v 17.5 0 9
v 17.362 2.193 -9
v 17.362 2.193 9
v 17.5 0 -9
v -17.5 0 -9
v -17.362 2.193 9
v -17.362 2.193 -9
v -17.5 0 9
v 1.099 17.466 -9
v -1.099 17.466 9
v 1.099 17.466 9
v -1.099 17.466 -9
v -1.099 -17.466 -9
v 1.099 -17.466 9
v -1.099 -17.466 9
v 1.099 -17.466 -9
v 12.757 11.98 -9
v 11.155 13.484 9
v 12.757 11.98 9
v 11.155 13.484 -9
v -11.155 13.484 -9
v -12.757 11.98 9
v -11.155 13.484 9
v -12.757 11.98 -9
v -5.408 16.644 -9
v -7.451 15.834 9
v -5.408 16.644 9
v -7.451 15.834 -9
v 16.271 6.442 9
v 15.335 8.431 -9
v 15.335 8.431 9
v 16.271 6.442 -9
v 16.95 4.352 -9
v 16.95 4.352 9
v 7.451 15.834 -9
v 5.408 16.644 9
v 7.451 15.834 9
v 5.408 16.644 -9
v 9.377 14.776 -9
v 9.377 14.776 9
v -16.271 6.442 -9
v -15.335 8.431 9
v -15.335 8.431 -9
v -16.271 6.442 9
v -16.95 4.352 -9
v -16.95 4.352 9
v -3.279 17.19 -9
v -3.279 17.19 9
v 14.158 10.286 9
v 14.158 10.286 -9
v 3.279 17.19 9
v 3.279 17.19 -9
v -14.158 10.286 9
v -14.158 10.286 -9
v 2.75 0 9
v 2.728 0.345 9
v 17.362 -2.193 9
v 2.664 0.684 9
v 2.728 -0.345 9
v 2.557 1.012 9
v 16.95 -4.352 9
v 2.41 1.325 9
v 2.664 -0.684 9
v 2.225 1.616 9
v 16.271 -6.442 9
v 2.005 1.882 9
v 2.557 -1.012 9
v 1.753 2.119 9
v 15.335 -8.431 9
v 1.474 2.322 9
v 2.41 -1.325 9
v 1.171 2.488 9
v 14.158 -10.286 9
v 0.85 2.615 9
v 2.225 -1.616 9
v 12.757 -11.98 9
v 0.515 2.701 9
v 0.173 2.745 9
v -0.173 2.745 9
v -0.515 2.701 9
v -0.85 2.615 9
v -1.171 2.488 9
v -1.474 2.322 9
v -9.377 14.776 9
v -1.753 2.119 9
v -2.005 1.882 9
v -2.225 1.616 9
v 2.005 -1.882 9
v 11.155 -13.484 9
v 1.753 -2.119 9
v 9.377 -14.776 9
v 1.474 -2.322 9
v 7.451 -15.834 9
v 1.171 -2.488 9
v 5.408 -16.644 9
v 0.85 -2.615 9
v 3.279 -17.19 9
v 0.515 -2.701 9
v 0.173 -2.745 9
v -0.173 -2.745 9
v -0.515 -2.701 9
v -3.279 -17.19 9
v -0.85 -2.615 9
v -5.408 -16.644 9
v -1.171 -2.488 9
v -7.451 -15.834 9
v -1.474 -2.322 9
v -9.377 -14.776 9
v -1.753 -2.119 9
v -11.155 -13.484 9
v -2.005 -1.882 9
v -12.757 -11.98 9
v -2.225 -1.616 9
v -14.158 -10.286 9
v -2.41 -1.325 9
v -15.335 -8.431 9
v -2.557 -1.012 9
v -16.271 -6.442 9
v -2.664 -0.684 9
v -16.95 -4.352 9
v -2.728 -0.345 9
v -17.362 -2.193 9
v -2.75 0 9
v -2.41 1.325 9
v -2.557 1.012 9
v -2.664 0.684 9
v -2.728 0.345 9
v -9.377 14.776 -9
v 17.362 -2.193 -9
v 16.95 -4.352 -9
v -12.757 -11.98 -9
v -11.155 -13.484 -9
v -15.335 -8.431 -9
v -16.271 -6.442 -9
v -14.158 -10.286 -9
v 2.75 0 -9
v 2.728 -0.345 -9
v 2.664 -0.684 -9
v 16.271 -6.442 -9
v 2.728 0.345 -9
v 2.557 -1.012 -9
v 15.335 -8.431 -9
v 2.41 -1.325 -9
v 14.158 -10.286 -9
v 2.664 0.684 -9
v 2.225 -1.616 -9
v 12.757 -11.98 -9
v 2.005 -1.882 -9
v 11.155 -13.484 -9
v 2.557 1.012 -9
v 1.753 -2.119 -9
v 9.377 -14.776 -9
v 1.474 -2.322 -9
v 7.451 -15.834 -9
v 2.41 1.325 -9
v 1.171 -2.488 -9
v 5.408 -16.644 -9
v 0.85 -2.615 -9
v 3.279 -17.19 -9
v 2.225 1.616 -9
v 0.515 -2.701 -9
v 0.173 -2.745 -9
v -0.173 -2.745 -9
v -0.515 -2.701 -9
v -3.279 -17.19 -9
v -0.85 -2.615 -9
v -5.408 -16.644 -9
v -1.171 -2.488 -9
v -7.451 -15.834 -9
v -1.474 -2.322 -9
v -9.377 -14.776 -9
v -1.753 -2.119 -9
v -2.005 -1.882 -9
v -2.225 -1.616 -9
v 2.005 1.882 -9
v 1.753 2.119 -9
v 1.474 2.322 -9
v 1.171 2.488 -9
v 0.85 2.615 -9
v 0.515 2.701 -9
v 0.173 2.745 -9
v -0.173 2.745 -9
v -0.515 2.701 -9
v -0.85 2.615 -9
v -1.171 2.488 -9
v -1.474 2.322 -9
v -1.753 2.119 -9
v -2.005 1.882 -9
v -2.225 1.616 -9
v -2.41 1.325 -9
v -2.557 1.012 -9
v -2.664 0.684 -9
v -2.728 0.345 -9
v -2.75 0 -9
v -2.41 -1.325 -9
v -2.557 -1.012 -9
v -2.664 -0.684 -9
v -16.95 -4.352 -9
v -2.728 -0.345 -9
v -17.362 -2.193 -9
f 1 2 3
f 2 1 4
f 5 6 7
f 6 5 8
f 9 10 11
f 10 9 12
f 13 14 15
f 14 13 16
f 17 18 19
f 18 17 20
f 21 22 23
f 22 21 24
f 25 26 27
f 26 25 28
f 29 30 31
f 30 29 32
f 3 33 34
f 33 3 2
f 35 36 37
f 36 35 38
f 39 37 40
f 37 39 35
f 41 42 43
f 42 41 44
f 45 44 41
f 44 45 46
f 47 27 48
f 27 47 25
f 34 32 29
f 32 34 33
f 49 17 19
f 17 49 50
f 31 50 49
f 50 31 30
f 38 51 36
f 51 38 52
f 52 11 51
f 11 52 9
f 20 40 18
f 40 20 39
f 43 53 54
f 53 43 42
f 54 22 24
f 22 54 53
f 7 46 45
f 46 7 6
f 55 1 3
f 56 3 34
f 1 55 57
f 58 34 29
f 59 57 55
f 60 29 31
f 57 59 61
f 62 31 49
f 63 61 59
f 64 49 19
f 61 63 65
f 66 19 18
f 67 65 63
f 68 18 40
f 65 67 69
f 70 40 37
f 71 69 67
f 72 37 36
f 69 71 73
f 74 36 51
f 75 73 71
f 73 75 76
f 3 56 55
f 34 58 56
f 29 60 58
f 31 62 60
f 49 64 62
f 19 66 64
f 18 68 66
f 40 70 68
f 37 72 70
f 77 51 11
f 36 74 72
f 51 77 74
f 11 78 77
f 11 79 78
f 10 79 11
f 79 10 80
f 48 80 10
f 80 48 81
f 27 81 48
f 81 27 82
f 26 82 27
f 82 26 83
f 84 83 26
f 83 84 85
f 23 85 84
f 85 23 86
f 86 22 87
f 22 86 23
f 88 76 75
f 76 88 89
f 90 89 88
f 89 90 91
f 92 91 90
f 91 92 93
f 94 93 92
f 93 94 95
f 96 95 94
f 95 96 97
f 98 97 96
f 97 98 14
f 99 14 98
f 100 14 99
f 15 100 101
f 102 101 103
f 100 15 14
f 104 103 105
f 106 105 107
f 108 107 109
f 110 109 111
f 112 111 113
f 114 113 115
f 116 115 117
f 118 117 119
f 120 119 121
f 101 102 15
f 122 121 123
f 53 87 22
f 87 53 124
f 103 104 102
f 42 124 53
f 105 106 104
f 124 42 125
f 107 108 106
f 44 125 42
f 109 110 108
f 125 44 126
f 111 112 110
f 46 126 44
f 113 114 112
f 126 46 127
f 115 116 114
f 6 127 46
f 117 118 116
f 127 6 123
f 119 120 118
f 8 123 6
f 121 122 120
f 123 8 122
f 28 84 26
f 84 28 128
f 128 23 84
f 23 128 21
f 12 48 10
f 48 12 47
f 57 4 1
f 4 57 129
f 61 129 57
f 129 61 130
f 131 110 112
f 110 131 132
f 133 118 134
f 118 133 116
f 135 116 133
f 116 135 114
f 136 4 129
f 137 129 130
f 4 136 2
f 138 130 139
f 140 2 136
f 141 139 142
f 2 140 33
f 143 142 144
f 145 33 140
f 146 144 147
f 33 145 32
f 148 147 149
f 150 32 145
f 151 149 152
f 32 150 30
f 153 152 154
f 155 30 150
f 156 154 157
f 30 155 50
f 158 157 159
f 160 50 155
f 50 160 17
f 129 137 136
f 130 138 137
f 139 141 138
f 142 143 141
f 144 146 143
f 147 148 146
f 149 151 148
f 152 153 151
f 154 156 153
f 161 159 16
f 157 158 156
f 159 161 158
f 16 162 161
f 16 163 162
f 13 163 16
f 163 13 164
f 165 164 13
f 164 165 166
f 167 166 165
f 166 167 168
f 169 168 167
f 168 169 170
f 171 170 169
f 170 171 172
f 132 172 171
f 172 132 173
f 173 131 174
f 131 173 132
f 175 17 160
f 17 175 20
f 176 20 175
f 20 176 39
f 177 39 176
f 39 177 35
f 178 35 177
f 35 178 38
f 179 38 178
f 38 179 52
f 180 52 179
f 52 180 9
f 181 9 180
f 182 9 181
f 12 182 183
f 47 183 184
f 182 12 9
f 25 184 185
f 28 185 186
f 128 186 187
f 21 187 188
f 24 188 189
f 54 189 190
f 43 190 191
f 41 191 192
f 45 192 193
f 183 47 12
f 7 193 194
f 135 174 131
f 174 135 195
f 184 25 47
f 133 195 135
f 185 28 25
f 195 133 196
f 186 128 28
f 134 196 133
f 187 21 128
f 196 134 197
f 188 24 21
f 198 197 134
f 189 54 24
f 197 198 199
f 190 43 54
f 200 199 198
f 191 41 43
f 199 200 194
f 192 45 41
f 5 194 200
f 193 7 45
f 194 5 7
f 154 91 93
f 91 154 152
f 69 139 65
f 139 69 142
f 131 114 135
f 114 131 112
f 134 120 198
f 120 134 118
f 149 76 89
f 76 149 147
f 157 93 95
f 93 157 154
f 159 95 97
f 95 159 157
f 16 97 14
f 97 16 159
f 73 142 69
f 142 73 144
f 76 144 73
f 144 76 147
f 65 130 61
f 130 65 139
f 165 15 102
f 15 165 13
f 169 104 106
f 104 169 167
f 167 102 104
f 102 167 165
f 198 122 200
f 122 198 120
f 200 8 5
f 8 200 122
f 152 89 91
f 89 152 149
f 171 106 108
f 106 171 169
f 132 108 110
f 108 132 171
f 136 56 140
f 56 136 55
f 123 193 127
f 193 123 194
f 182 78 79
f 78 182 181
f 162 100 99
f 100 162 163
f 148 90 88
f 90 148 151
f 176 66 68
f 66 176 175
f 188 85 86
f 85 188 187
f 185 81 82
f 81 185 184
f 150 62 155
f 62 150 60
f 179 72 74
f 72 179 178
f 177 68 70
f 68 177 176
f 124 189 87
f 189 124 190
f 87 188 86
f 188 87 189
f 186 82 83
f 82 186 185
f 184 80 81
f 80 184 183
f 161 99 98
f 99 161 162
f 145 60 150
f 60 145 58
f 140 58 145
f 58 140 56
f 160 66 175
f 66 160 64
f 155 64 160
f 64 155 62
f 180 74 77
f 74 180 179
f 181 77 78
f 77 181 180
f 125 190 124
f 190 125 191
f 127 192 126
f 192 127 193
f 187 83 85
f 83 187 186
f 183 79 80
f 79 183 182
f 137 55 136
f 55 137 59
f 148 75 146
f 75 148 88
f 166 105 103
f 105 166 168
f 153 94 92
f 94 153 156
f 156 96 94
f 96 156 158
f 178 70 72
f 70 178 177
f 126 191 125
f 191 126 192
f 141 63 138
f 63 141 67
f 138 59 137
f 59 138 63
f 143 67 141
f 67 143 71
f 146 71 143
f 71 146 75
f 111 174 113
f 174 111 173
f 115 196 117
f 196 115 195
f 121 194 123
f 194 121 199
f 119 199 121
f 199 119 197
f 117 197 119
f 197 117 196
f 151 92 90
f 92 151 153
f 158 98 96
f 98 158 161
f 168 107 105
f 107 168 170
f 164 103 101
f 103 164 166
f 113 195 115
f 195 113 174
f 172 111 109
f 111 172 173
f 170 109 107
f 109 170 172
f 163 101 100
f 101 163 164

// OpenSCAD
$fn = 50;


difference() {
	union() {
		translate(v = [0, 0, -9.0000000000]) {
			cylinder(h = 18, r = 17.5000000000);
		}
	}
	union() {
		translate(v = [0, 0, -100.0000000000]) {
			cylinder(h = 200, r = 2.7500000000);
		}
	}
}
